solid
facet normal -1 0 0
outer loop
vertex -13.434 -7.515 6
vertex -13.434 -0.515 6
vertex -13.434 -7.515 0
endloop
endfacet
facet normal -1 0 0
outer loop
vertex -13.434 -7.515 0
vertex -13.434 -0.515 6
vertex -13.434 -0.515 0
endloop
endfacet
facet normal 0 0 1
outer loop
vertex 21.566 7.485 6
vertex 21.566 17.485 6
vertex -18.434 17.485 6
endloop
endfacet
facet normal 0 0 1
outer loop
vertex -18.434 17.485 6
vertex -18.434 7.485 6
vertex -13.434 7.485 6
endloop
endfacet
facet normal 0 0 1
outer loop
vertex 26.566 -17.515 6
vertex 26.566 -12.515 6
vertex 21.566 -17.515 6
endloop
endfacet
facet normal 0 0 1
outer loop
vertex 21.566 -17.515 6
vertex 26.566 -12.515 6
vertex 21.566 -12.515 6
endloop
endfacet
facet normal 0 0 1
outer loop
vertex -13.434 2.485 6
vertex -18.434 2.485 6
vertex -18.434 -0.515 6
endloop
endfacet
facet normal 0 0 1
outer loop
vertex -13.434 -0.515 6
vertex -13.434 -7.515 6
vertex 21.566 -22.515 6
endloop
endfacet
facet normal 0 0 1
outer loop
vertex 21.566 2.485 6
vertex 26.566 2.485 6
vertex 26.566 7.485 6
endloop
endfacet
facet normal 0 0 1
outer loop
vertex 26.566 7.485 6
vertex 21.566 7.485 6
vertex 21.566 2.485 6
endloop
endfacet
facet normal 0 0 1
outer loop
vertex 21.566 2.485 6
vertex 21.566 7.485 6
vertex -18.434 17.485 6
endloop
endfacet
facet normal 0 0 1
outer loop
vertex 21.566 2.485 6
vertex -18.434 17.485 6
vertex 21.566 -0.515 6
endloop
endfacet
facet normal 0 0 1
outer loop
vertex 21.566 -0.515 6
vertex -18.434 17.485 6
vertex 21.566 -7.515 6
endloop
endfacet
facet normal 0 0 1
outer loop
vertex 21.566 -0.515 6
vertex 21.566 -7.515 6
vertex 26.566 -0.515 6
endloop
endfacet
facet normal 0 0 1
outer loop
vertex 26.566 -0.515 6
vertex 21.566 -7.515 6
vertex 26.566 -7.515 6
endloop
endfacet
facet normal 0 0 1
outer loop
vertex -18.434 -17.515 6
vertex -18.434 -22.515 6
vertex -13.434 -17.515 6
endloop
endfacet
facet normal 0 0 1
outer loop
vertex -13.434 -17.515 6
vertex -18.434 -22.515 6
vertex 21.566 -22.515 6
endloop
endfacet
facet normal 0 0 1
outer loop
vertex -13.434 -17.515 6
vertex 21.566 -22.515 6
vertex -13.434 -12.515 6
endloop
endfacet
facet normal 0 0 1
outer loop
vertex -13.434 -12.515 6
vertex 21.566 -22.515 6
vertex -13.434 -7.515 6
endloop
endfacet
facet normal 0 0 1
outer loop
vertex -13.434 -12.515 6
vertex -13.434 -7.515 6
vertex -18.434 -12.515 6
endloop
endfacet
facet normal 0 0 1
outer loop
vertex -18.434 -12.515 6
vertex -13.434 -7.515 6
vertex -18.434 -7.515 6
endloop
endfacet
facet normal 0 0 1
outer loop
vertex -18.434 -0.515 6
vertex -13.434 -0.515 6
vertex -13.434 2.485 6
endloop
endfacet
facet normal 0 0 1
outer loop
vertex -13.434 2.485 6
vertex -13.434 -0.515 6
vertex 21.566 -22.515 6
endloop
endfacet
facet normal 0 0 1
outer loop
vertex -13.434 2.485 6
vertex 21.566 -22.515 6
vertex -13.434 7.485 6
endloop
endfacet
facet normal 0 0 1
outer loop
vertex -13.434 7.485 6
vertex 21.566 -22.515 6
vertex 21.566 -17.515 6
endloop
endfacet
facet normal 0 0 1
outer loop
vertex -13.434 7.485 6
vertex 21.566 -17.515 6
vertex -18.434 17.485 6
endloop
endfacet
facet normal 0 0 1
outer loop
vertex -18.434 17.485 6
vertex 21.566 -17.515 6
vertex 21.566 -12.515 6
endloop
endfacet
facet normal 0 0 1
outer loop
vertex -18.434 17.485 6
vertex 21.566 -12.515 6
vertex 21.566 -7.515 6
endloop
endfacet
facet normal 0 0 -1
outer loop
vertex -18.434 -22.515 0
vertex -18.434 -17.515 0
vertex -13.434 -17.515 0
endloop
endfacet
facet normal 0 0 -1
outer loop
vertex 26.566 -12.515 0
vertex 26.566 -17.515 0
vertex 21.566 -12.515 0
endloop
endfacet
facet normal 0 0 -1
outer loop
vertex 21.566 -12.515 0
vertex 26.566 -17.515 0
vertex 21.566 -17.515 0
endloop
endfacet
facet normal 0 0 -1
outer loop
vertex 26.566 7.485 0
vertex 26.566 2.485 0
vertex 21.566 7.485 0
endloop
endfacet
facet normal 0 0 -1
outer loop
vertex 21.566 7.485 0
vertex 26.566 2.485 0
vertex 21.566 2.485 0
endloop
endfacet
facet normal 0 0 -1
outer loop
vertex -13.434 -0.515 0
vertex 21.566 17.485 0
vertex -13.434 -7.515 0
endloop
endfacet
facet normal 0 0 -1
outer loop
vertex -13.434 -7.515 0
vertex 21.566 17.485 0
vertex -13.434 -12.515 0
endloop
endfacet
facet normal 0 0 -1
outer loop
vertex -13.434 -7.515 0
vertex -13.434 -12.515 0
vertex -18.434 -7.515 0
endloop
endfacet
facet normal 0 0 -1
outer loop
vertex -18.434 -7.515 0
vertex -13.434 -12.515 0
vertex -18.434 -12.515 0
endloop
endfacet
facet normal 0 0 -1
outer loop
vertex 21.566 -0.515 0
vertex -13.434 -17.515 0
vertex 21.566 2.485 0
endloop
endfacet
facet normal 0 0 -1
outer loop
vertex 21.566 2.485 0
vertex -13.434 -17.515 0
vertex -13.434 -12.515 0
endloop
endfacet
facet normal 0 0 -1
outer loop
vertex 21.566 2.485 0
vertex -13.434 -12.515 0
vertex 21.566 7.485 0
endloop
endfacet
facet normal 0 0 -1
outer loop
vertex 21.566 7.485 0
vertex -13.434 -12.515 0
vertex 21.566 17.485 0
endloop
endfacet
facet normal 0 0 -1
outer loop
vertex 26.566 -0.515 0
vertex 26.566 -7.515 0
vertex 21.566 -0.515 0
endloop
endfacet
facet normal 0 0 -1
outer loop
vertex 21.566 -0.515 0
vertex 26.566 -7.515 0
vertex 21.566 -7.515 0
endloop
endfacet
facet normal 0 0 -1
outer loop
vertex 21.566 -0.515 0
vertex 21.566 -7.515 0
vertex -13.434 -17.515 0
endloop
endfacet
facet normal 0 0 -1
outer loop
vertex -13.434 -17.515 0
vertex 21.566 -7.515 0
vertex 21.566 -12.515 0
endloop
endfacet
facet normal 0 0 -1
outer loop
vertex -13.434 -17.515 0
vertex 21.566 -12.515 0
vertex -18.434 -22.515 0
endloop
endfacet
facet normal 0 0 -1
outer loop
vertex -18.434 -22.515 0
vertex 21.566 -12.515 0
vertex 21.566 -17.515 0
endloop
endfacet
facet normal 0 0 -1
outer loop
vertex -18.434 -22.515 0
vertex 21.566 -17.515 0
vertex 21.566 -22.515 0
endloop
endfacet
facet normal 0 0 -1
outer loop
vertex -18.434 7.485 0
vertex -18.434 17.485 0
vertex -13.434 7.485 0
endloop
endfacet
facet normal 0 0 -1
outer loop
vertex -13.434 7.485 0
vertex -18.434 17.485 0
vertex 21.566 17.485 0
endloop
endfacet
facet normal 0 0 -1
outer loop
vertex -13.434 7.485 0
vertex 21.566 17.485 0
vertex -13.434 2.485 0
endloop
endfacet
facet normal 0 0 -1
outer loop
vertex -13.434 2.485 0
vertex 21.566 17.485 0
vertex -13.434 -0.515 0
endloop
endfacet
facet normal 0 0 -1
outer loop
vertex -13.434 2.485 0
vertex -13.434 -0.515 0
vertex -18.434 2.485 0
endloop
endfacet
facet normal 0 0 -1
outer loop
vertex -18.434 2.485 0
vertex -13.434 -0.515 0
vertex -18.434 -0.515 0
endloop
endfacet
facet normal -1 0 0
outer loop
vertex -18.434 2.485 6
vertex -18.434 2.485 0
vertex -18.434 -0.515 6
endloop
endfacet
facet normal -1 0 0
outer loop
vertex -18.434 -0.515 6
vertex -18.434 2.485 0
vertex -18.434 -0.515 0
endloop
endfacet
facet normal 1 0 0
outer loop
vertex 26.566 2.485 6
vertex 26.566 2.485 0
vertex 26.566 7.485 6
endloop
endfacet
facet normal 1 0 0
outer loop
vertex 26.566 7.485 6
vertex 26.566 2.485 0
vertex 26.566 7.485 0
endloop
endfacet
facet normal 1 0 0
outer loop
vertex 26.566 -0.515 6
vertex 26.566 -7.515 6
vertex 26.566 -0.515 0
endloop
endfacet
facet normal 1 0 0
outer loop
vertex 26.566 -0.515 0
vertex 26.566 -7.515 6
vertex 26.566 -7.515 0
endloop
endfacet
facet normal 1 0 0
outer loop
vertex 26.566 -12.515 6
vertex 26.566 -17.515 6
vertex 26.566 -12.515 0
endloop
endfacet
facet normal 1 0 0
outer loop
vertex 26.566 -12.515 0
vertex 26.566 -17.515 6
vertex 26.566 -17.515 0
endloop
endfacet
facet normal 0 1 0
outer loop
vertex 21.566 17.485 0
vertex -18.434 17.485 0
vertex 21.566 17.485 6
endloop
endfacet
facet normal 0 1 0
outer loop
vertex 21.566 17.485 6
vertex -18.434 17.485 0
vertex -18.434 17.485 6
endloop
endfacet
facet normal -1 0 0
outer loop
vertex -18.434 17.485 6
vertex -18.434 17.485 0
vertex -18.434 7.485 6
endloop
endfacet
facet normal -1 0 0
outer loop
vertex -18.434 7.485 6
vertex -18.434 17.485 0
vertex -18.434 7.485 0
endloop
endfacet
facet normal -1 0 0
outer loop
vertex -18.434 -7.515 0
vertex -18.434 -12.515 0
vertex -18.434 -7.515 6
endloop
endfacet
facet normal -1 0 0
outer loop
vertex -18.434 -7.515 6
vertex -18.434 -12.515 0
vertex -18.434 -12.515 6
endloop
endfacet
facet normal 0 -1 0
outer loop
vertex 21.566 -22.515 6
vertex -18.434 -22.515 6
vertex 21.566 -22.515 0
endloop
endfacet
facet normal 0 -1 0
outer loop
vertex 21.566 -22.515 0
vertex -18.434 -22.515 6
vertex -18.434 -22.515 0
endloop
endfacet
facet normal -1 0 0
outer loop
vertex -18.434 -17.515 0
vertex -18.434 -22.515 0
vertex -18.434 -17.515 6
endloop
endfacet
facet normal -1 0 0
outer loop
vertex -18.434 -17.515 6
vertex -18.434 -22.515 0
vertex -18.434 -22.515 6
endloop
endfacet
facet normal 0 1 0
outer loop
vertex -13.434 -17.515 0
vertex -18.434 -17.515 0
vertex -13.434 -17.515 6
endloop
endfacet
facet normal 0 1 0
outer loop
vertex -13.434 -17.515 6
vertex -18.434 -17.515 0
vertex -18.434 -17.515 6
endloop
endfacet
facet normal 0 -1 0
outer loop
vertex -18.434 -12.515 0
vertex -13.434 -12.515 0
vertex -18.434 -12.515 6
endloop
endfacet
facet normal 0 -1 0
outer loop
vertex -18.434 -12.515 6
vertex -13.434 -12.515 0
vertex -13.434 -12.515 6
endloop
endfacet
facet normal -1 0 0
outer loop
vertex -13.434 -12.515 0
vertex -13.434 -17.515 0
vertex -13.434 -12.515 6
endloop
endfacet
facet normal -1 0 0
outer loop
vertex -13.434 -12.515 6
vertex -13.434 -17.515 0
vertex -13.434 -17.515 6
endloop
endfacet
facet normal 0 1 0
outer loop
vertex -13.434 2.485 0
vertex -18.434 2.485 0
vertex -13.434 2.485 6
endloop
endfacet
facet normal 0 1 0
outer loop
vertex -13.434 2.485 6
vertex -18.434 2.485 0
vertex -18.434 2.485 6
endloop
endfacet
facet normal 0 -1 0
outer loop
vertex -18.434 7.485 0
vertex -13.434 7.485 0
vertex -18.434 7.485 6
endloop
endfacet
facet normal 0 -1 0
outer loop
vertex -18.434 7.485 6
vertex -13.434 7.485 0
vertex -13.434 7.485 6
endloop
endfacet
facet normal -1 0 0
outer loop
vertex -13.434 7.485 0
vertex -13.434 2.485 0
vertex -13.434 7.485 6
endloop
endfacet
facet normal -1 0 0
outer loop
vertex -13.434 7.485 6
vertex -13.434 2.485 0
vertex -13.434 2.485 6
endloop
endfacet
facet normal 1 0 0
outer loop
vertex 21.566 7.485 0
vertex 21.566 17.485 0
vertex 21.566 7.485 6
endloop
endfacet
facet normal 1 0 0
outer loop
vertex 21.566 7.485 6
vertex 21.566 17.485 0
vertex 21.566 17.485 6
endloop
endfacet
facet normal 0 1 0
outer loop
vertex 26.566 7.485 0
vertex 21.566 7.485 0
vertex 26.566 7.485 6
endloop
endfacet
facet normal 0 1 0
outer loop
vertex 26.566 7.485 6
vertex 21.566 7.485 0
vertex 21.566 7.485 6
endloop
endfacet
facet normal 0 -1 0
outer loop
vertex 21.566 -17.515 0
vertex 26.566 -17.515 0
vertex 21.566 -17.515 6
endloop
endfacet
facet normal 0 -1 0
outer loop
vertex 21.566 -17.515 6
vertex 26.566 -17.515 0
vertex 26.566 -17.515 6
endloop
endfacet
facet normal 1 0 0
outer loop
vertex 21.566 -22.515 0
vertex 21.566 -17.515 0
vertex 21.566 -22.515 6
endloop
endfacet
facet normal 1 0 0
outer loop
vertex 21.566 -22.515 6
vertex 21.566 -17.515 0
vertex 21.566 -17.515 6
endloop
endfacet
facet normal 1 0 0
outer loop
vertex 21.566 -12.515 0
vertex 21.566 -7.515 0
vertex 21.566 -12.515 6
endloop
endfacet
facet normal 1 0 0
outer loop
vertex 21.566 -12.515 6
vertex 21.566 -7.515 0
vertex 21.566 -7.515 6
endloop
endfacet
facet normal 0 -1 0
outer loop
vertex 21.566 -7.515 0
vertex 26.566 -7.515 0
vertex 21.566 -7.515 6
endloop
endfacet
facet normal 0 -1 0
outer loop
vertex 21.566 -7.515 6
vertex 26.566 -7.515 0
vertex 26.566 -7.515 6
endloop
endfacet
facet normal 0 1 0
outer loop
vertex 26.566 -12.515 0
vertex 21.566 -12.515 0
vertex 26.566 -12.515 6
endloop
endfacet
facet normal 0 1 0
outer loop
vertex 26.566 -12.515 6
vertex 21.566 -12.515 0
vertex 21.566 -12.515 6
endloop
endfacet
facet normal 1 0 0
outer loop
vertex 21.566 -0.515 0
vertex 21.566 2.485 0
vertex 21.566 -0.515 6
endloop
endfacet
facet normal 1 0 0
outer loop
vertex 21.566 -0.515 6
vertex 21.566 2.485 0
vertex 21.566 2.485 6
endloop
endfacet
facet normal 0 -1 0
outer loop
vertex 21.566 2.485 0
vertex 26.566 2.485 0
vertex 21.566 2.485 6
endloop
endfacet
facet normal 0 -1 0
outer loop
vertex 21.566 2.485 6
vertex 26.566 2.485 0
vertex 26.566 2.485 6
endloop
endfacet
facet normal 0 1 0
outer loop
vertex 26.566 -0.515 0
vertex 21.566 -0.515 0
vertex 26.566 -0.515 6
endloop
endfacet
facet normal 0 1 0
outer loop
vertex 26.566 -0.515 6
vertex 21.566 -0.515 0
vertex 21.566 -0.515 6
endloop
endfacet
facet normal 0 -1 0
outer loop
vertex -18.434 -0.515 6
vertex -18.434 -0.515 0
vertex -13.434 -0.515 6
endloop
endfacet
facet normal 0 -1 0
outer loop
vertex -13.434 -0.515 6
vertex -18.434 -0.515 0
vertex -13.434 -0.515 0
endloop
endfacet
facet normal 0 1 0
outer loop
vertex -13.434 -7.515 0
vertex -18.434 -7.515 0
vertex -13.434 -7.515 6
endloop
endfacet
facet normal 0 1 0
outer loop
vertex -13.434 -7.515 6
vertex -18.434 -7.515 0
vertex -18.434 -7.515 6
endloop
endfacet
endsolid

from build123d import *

# Parameters (mm, degrees)
SKETCH1_W           = 45
SKETCH1_H           = 40
BOSS_EXTRUDE1_DEPTH = 6
SKETCH2_W           = 5
SKETCH2_H           = 5
SKETCH2_H_2         = 7
CUT_EXTRUDE1_DEPTH  = 6
SKETCH3_W           = 5
SKETCH3_H           = 5
SKETCH3_H_2         = 7
CUT_EXTRUDE3_DEPTH  = 6
SKETCH3_4_W         = 5
SKETCH3_4_H         = 5
SKETCH3_4_H_2       = 7
BOSS_EXTRUDE3_DEPTH = 6
SKETCH3_5_W         = 5
SKETCH3_5_H         = 10
SKETCH3_5_H_2       = 3
SKETCH3_5_H_3       = 5
CUT_EXTRUDE4_DEPTH  = 6
SKETCH4_W           = 5
SKETCH4_H           = 2
CUT_EXTRUDE10_DEPTH = 10
SKETCH5_W           = 5
SKETCH5_H           = 5
BOSS_EXTRUDE4_DEPTH = 6


with BuildPart() as part:
    # Sketch1 → Boss-Extrude1 (new body)
    with BuildSketch(Plane.XY):
        with Locations((4.06626506, -2.515060241)):
            Rectangle(SKETCH1_W, SKETCH1_H)
    extrude(amount=BOSS_EXTRUDE1_DEPTH)

    # Sketch2 → Cut-Extrude1 (cut)
    with BuildSketch(Plane.XY.offset(6)):
        with Locations((-15.93373494, 4.984939759)):
            Rectangle(SKETCH2_W, SKETCH2_H)
        with Locations((-15.93373494, -6.015060241)):
            Rectangle(SKETCH2_W, SKETCH2_H_2)
        with Locations((-15.93373494, -15.015060241)):
            Rectangle(SKETCH2_W, SKETCH2_H)
    extrude(amount=-CUT_EXTRUDE1_DEPTH, mode=Mode.SUBTRACT)

    # Sketch3 → Cut-Extrude3 (cut)
    with BuildSketch(Plane.XY.offset(6)):
        with Locations((24.06626506, -15.015060241)):
            Rectangle(SKETCH3_W, SKETCH3_H)
        with Locations((24.06626506, -4.015060241)):
            Rectangle(SKETCH3_W, SKETCH3_H_2)
        with Locations((24.06626506, 4.984939759)):
            Rectangle(SKETCH3_W, SKETCH3_H)
    extrude(amount=-CUT_EXTRUDE3_DEPTH, mode=Mode.SUBTRACT)

    # Sketch3<4> → Boss-Extrude3 (add)
    with BuildSketch(Plane.XY.offset(6)):
        with Locations((24.06626506, 4.984939759)):
            Rectangle(SKETCH3_4_W, SKETCH3_4_H)
        with Locations((24.06626506, -4.015060241)):
            Rectangle(SKETCH3_4_W, SKETCH3_4_H_2)
        with Locations((24.06626506, -15.015060241)):
            Rectangle(SKETCH3_4_W, SKETCH3_4_H)
    extrude(amount=-BOSS_EXTRUDE3_DEPTH)

    # Sketch3<5> → Cut-Extrude4 (cut)
    with BuildSketch(Plane.XY.offset(6)):
        with Locations((24.06626506, 12.484939759)):
            Rectangle(SKETCH3_5_W, SKETCH3_5_H)
        with Locations((24.06626506, 0.984939759)):
            Rectangle(SKETCH3_5_W, SKETCH3_5_H_2)
        with Locations((24.06626506, -10.015060241)):
            Rectangle(SKETCH3_5_W, SKETCH3_5_H_3)
        with Locations((24.06626506, -20.015060241)):
            Rectangle(SKETCH3_5_W, SKETCH3_5_H_3)
    extrude(amount=-CUT_EXTRUDE4_DEPTH, mode=Mode.SUBTRACT)

    # Sketch4 → Cut-Extrude10 (cut)
    with BuildSketch(Plane.XY.offset(6)):
        with Locations((-15.93373494, -1.515060241)):
            Rectangle(SKETCH4_W, SKETCH4_H)
    extrude(amount=-CUT_EXTRUDE10_DEPTH, mode=Mode.SUBTRACT)

    # Sketch5 → Boss-Extrude4 (add)
    with BuildSketch(Plane.XY.offset(6)):
        with Locations((-15.93373494, -10.015060241)):
            Rectangle(SKETCH5_W, SKETCH5_H)
    extrude(amount=-BOSS_EXTRUDE4_DEPTH)


solid = part.part
